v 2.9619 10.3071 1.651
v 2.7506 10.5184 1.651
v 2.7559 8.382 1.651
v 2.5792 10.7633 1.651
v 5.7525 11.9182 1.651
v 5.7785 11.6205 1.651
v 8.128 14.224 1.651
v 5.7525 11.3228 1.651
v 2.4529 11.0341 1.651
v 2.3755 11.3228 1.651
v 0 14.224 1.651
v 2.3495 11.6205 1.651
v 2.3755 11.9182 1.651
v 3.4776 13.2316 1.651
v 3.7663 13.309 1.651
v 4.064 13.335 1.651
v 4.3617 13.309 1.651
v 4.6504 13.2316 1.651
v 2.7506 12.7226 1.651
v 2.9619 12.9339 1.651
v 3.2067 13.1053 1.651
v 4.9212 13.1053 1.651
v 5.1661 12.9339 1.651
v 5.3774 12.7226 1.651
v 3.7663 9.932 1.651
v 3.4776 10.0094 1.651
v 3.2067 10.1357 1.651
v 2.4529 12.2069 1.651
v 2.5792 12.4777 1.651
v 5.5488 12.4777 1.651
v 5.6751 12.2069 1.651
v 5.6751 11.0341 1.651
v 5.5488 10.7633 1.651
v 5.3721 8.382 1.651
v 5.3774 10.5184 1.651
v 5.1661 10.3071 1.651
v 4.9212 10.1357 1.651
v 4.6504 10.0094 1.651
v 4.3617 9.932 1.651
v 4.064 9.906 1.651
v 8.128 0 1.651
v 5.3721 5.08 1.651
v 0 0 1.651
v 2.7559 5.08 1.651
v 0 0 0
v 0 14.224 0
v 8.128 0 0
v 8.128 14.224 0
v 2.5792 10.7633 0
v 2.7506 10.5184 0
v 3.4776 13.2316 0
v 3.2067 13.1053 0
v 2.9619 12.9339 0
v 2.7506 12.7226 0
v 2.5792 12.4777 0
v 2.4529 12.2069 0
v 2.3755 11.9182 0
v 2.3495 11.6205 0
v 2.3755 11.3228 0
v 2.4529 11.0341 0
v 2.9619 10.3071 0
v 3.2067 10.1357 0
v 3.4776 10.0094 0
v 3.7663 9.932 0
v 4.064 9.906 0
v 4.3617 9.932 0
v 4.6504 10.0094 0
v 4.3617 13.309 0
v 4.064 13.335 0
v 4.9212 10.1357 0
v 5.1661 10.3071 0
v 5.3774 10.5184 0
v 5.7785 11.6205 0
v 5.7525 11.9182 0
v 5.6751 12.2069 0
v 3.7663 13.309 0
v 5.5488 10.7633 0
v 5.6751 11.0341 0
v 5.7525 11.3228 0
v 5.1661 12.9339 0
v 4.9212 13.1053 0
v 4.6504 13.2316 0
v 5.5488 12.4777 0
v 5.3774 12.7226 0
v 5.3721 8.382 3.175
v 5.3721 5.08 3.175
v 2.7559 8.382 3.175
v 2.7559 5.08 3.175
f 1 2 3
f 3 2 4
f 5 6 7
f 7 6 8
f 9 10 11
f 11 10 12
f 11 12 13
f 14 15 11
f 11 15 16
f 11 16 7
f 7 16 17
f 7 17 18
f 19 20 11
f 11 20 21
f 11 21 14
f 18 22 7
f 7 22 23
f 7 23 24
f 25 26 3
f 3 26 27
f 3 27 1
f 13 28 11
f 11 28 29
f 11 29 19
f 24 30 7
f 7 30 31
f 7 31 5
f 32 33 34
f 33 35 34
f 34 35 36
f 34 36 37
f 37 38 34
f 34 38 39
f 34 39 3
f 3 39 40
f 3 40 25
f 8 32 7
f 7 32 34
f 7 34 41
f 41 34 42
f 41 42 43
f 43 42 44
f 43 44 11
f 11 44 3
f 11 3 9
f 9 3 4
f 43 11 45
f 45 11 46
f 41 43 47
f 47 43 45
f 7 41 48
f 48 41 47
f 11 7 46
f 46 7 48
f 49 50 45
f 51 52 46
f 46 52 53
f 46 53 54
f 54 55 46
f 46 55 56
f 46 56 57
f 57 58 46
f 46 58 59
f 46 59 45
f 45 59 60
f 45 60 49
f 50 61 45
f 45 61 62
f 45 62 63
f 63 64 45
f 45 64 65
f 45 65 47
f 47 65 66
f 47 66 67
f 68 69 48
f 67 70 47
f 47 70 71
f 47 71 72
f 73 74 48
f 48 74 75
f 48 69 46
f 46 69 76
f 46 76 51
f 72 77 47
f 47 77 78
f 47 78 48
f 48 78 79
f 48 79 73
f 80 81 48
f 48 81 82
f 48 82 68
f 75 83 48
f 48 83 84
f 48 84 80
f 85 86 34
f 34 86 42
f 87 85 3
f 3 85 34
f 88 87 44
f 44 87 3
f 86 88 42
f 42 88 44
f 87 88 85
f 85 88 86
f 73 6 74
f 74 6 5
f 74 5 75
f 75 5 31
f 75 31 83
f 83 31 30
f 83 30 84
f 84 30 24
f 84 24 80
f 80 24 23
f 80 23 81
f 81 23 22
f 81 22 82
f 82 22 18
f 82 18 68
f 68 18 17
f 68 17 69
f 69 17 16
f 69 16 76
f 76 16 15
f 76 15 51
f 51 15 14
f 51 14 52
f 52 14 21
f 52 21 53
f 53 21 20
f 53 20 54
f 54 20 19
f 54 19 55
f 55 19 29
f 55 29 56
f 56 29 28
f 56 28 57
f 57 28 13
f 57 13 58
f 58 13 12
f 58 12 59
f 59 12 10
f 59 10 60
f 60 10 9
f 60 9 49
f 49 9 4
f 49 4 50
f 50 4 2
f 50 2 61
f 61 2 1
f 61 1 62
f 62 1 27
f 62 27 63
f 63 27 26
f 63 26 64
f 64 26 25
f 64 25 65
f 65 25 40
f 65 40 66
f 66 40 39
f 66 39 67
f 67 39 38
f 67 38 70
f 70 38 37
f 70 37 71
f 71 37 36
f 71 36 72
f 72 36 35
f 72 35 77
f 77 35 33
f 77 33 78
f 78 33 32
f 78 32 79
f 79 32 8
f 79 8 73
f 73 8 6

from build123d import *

# Parameters (mm, degrees)
SKETCH1_W           = 8.128
SKETCH1_H           = 14.224
BOSS_EXTRUDE1_DEPTH = 1.651
SKETCH2_W           = 2.6162
SKETCH2_H           = 3.302
BOSS_EXTRUDE2_DEPTH = 1.524
SKETCH3_R           = 1.7145
CUT_EXTRUDE1_DEPTH  = 2.651


with BuildPart() as part:
    # Sketch1 → Boss-Extrude1 (new body)
    with BuildSketch(Plane.XY):
        with Locations((4.064, 7.112)):
            Rectangle(SKETCH1_W, SKETCH1_H)
    extrude(amount=BOSS_EXTRUDE1_DEPTH)

    # Sketch2 → Boss-Extrude2 (add)
    with BuildSketch(Plane.XY.offset(1.651)):
        with Locations((4.064, 6.731)):
            Rectangle(SKETCH2_W, SKETCH2_H)
    extrude(amount=BOSS_EXTRUDE2_DEPTH)

    # Sketch3 → Cut-Extrude1 (cut, through all)
    with BuildSketch(Plane.XY.offset(1.651)):
        with Locations((4.064, 11.6205)):
            Circle(SKETCH3_R)
    extrude(amount=-CUT_EXTRUDE1_DEPTH, mode=Mode.SUBTRACT)


solid = part.part
